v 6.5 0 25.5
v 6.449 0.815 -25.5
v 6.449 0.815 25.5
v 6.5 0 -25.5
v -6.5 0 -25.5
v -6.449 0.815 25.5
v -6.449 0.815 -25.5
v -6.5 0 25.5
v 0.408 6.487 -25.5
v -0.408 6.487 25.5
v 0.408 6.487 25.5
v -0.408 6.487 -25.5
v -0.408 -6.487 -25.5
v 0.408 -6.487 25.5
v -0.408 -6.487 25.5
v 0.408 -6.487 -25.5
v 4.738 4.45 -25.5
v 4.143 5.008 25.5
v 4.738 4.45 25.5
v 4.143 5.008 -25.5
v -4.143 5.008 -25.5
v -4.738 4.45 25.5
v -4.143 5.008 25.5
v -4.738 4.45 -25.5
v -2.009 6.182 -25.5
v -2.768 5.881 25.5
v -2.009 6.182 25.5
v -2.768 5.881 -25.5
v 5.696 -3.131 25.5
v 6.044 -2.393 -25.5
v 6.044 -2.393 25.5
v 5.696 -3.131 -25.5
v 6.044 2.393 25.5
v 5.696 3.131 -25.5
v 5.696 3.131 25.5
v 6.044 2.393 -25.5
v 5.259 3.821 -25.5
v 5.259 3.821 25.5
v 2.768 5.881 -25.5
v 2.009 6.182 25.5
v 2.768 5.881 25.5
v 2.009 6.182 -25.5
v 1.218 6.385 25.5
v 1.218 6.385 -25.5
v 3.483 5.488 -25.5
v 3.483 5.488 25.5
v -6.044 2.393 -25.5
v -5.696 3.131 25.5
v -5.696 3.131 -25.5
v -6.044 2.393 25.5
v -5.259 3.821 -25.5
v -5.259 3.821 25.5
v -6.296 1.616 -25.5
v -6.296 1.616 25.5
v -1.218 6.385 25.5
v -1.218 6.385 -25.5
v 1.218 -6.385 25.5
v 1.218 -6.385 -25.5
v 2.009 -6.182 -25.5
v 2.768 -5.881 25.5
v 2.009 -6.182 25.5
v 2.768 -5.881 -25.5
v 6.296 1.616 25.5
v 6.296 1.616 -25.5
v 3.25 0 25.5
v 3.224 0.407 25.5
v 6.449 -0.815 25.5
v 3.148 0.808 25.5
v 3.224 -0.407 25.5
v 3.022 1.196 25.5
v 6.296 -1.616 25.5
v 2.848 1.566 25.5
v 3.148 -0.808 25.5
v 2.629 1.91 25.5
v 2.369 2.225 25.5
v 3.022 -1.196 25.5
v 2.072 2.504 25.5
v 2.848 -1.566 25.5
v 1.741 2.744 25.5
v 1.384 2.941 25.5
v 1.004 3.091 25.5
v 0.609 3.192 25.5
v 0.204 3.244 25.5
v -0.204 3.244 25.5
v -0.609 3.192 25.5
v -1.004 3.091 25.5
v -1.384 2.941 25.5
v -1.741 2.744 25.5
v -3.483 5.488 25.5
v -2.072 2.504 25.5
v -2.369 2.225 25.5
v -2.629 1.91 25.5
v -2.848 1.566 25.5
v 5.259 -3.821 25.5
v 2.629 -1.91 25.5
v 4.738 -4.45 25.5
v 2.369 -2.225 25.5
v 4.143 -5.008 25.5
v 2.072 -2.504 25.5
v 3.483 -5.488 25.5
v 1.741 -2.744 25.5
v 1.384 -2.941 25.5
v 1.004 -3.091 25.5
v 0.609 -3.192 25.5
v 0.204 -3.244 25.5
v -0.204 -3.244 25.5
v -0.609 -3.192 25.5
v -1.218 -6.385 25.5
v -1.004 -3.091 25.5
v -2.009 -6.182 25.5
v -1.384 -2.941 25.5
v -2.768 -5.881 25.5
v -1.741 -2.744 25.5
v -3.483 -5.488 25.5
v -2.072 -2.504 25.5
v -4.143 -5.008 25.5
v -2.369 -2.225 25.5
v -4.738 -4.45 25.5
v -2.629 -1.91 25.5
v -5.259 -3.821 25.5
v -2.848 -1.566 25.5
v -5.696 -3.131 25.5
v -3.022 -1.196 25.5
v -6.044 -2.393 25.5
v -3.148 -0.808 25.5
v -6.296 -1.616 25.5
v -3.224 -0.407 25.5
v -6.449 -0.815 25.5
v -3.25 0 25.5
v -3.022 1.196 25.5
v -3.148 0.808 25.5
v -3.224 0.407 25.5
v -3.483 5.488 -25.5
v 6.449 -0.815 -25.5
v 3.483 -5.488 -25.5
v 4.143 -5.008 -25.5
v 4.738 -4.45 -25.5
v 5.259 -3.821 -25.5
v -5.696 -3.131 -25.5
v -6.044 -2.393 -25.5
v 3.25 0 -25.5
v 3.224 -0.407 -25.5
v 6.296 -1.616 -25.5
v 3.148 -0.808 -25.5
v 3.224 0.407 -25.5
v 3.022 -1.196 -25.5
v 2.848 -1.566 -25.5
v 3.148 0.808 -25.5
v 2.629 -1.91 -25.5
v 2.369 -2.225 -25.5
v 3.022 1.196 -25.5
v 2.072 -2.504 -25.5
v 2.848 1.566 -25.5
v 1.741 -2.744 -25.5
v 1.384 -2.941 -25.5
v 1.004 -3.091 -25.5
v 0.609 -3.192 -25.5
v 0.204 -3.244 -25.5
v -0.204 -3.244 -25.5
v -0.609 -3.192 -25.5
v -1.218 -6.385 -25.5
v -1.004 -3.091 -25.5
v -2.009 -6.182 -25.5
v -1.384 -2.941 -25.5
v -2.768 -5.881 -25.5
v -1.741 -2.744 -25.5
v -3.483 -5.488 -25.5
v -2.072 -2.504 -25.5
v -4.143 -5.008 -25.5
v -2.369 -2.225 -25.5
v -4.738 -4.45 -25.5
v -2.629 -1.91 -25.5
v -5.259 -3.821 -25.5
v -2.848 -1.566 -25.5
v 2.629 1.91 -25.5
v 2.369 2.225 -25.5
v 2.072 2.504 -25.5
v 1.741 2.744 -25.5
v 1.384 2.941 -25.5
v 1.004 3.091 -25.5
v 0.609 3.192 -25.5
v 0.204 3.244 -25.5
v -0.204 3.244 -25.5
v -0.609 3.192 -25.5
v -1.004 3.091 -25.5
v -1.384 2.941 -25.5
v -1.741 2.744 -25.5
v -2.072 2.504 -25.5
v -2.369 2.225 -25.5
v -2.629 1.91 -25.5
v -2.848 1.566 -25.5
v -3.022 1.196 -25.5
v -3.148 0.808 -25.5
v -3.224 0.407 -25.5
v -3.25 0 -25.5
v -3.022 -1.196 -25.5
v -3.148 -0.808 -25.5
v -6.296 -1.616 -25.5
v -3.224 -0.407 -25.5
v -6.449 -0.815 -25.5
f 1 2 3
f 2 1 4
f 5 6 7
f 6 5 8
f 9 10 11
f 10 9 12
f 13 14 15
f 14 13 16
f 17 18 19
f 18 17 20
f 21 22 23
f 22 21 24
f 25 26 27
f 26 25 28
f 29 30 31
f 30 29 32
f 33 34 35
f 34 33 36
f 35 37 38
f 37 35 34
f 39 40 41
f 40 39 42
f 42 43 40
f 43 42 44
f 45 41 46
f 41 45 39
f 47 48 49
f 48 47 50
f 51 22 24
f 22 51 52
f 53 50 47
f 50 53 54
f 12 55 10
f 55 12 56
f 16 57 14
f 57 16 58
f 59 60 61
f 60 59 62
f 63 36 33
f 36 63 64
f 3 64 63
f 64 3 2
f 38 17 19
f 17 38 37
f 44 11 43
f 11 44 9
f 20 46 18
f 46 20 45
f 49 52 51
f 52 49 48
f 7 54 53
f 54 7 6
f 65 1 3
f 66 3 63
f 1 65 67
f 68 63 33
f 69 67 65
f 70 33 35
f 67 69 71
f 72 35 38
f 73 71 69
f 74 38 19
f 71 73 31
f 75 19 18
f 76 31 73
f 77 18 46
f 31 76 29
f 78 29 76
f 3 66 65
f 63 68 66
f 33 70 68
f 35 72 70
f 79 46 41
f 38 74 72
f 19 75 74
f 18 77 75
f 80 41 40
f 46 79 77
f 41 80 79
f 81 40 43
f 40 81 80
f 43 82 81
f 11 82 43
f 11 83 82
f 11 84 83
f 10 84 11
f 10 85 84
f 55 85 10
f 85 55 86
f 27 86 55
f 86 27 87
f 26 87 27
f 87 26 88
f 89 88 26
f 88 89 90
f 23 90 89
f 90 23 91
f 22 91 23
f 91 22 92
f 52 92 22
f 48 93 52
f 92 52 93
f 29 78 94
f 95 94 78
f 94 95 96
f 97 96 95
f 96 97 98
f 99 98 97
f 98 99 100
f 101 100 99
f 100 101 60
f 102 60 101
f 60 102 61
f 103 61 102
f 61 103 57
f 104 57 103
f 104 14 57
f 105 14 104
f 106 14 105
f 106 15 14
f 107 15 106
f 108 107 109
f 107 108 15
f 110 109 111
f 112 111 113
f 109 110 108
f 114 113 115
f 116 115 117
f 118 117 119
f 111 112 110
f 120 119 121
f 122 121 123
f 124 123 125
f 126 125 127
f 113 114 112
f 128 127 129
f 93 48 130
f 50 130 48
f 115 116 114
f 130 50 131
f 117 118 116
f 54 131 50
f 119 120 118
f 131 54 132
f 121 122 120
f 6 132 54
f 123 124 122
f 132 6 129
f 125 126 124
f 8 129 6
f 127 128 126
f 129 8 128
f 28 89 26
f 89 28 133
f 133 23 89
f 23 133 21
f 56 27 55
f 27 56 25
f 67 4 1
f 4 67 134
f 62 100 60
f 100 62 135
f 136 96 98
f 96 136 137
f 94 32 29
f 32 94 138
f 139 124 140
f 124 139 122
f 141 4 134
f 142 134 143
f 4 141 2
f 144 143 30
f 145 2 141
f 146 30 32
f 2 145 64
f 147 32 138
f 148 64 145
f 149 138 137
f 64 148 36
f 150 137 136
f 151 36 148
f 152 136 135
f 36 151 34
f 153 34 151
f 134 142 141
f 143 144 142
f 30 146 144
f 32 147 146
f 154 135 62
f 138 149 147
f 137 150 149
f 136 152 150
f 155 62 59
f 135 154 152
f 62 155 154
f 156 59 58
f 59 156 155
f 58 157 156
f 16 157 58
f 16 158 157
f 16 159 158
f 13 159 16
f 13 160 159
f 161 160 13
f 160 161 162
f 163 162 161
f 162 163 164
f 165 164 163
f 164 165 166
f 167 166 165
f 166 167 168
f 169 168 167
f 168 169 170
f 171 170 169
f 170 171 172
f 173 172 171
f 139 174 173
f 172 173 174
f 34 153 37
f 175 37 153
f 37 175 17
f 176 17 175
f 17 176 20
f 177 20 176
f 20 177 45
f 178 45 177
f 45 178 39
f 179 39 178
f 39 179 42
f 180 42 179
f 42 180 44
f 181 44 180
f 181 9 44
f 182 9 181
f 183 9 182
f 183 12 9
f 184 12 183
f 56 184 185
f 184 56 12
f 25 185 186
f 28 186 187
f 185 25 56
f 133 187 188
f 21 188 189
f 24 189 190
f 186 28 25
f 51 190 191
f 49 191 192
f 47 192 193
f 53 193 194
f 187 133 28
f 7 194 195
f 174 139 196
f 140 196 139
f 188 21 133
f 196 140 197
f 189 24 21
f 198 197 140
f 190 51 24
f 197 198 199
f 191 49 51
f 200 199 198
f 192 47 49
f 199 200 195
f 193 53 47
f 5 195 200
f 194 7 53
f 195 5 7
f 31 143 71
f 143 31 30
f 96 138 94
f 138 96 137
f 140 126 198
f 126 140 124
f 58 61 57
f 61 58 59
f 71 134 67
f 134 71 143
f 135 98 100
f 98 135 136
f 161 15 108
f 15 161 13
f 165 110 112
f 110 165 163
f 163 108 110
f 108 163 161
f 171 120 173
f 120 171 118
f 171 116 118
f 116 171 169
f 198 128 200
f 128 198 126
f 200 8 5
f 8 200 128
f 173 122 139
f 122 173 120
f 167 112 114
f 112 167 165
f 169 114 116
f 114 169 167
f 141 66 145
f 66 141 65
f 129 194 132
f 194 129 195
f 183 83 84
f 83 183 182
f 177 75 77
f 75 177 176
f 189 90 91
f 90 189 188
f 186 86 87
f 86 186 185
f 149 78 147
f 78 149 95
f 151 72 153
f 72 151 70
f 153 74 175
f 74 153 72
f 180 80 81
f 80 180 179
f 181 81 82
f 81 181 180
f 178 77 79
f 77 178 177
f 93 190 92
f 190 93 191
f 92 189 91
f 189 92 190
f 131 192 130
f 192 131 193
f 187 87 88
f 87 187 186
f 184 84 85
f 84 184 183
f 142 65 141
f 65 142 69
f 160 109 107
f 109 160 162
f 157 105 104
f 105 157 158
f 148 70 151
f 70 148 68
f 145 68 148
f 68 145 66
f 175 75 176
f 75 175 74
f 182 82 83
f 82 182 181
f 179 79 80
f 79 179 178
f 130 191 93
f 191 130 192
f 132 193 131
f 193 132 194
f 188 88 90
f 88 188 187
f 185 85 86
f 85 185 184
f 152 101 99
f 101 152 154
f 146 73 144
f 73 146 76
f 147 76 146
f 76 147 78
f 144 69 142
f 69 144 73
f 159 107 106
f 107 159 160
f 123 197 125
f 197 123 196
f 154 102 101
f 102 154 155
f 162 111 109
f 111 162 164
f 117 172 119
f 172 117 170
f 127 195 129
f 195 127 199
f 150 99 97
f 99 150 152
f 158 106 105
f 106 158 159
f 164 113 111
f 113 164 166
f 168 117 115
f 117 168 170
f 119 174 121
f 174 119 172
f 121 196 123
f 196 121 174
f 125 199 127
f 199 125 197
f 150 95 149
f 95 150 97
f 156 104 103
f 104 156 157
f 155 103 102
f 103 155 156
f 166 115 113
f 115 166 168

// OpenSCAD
$fn = 50;


difference() {
	union() {
		translate(v = [0, 0, -25.5000000000]) {
			cylinder(h = 51, r = 6.5000000000);
		}
	}
	union() {
		translate(v = [0, 0, -100.0000000000]) {
			cylinder(h = 200, r = 3.2500000000);
		}
	}
}
